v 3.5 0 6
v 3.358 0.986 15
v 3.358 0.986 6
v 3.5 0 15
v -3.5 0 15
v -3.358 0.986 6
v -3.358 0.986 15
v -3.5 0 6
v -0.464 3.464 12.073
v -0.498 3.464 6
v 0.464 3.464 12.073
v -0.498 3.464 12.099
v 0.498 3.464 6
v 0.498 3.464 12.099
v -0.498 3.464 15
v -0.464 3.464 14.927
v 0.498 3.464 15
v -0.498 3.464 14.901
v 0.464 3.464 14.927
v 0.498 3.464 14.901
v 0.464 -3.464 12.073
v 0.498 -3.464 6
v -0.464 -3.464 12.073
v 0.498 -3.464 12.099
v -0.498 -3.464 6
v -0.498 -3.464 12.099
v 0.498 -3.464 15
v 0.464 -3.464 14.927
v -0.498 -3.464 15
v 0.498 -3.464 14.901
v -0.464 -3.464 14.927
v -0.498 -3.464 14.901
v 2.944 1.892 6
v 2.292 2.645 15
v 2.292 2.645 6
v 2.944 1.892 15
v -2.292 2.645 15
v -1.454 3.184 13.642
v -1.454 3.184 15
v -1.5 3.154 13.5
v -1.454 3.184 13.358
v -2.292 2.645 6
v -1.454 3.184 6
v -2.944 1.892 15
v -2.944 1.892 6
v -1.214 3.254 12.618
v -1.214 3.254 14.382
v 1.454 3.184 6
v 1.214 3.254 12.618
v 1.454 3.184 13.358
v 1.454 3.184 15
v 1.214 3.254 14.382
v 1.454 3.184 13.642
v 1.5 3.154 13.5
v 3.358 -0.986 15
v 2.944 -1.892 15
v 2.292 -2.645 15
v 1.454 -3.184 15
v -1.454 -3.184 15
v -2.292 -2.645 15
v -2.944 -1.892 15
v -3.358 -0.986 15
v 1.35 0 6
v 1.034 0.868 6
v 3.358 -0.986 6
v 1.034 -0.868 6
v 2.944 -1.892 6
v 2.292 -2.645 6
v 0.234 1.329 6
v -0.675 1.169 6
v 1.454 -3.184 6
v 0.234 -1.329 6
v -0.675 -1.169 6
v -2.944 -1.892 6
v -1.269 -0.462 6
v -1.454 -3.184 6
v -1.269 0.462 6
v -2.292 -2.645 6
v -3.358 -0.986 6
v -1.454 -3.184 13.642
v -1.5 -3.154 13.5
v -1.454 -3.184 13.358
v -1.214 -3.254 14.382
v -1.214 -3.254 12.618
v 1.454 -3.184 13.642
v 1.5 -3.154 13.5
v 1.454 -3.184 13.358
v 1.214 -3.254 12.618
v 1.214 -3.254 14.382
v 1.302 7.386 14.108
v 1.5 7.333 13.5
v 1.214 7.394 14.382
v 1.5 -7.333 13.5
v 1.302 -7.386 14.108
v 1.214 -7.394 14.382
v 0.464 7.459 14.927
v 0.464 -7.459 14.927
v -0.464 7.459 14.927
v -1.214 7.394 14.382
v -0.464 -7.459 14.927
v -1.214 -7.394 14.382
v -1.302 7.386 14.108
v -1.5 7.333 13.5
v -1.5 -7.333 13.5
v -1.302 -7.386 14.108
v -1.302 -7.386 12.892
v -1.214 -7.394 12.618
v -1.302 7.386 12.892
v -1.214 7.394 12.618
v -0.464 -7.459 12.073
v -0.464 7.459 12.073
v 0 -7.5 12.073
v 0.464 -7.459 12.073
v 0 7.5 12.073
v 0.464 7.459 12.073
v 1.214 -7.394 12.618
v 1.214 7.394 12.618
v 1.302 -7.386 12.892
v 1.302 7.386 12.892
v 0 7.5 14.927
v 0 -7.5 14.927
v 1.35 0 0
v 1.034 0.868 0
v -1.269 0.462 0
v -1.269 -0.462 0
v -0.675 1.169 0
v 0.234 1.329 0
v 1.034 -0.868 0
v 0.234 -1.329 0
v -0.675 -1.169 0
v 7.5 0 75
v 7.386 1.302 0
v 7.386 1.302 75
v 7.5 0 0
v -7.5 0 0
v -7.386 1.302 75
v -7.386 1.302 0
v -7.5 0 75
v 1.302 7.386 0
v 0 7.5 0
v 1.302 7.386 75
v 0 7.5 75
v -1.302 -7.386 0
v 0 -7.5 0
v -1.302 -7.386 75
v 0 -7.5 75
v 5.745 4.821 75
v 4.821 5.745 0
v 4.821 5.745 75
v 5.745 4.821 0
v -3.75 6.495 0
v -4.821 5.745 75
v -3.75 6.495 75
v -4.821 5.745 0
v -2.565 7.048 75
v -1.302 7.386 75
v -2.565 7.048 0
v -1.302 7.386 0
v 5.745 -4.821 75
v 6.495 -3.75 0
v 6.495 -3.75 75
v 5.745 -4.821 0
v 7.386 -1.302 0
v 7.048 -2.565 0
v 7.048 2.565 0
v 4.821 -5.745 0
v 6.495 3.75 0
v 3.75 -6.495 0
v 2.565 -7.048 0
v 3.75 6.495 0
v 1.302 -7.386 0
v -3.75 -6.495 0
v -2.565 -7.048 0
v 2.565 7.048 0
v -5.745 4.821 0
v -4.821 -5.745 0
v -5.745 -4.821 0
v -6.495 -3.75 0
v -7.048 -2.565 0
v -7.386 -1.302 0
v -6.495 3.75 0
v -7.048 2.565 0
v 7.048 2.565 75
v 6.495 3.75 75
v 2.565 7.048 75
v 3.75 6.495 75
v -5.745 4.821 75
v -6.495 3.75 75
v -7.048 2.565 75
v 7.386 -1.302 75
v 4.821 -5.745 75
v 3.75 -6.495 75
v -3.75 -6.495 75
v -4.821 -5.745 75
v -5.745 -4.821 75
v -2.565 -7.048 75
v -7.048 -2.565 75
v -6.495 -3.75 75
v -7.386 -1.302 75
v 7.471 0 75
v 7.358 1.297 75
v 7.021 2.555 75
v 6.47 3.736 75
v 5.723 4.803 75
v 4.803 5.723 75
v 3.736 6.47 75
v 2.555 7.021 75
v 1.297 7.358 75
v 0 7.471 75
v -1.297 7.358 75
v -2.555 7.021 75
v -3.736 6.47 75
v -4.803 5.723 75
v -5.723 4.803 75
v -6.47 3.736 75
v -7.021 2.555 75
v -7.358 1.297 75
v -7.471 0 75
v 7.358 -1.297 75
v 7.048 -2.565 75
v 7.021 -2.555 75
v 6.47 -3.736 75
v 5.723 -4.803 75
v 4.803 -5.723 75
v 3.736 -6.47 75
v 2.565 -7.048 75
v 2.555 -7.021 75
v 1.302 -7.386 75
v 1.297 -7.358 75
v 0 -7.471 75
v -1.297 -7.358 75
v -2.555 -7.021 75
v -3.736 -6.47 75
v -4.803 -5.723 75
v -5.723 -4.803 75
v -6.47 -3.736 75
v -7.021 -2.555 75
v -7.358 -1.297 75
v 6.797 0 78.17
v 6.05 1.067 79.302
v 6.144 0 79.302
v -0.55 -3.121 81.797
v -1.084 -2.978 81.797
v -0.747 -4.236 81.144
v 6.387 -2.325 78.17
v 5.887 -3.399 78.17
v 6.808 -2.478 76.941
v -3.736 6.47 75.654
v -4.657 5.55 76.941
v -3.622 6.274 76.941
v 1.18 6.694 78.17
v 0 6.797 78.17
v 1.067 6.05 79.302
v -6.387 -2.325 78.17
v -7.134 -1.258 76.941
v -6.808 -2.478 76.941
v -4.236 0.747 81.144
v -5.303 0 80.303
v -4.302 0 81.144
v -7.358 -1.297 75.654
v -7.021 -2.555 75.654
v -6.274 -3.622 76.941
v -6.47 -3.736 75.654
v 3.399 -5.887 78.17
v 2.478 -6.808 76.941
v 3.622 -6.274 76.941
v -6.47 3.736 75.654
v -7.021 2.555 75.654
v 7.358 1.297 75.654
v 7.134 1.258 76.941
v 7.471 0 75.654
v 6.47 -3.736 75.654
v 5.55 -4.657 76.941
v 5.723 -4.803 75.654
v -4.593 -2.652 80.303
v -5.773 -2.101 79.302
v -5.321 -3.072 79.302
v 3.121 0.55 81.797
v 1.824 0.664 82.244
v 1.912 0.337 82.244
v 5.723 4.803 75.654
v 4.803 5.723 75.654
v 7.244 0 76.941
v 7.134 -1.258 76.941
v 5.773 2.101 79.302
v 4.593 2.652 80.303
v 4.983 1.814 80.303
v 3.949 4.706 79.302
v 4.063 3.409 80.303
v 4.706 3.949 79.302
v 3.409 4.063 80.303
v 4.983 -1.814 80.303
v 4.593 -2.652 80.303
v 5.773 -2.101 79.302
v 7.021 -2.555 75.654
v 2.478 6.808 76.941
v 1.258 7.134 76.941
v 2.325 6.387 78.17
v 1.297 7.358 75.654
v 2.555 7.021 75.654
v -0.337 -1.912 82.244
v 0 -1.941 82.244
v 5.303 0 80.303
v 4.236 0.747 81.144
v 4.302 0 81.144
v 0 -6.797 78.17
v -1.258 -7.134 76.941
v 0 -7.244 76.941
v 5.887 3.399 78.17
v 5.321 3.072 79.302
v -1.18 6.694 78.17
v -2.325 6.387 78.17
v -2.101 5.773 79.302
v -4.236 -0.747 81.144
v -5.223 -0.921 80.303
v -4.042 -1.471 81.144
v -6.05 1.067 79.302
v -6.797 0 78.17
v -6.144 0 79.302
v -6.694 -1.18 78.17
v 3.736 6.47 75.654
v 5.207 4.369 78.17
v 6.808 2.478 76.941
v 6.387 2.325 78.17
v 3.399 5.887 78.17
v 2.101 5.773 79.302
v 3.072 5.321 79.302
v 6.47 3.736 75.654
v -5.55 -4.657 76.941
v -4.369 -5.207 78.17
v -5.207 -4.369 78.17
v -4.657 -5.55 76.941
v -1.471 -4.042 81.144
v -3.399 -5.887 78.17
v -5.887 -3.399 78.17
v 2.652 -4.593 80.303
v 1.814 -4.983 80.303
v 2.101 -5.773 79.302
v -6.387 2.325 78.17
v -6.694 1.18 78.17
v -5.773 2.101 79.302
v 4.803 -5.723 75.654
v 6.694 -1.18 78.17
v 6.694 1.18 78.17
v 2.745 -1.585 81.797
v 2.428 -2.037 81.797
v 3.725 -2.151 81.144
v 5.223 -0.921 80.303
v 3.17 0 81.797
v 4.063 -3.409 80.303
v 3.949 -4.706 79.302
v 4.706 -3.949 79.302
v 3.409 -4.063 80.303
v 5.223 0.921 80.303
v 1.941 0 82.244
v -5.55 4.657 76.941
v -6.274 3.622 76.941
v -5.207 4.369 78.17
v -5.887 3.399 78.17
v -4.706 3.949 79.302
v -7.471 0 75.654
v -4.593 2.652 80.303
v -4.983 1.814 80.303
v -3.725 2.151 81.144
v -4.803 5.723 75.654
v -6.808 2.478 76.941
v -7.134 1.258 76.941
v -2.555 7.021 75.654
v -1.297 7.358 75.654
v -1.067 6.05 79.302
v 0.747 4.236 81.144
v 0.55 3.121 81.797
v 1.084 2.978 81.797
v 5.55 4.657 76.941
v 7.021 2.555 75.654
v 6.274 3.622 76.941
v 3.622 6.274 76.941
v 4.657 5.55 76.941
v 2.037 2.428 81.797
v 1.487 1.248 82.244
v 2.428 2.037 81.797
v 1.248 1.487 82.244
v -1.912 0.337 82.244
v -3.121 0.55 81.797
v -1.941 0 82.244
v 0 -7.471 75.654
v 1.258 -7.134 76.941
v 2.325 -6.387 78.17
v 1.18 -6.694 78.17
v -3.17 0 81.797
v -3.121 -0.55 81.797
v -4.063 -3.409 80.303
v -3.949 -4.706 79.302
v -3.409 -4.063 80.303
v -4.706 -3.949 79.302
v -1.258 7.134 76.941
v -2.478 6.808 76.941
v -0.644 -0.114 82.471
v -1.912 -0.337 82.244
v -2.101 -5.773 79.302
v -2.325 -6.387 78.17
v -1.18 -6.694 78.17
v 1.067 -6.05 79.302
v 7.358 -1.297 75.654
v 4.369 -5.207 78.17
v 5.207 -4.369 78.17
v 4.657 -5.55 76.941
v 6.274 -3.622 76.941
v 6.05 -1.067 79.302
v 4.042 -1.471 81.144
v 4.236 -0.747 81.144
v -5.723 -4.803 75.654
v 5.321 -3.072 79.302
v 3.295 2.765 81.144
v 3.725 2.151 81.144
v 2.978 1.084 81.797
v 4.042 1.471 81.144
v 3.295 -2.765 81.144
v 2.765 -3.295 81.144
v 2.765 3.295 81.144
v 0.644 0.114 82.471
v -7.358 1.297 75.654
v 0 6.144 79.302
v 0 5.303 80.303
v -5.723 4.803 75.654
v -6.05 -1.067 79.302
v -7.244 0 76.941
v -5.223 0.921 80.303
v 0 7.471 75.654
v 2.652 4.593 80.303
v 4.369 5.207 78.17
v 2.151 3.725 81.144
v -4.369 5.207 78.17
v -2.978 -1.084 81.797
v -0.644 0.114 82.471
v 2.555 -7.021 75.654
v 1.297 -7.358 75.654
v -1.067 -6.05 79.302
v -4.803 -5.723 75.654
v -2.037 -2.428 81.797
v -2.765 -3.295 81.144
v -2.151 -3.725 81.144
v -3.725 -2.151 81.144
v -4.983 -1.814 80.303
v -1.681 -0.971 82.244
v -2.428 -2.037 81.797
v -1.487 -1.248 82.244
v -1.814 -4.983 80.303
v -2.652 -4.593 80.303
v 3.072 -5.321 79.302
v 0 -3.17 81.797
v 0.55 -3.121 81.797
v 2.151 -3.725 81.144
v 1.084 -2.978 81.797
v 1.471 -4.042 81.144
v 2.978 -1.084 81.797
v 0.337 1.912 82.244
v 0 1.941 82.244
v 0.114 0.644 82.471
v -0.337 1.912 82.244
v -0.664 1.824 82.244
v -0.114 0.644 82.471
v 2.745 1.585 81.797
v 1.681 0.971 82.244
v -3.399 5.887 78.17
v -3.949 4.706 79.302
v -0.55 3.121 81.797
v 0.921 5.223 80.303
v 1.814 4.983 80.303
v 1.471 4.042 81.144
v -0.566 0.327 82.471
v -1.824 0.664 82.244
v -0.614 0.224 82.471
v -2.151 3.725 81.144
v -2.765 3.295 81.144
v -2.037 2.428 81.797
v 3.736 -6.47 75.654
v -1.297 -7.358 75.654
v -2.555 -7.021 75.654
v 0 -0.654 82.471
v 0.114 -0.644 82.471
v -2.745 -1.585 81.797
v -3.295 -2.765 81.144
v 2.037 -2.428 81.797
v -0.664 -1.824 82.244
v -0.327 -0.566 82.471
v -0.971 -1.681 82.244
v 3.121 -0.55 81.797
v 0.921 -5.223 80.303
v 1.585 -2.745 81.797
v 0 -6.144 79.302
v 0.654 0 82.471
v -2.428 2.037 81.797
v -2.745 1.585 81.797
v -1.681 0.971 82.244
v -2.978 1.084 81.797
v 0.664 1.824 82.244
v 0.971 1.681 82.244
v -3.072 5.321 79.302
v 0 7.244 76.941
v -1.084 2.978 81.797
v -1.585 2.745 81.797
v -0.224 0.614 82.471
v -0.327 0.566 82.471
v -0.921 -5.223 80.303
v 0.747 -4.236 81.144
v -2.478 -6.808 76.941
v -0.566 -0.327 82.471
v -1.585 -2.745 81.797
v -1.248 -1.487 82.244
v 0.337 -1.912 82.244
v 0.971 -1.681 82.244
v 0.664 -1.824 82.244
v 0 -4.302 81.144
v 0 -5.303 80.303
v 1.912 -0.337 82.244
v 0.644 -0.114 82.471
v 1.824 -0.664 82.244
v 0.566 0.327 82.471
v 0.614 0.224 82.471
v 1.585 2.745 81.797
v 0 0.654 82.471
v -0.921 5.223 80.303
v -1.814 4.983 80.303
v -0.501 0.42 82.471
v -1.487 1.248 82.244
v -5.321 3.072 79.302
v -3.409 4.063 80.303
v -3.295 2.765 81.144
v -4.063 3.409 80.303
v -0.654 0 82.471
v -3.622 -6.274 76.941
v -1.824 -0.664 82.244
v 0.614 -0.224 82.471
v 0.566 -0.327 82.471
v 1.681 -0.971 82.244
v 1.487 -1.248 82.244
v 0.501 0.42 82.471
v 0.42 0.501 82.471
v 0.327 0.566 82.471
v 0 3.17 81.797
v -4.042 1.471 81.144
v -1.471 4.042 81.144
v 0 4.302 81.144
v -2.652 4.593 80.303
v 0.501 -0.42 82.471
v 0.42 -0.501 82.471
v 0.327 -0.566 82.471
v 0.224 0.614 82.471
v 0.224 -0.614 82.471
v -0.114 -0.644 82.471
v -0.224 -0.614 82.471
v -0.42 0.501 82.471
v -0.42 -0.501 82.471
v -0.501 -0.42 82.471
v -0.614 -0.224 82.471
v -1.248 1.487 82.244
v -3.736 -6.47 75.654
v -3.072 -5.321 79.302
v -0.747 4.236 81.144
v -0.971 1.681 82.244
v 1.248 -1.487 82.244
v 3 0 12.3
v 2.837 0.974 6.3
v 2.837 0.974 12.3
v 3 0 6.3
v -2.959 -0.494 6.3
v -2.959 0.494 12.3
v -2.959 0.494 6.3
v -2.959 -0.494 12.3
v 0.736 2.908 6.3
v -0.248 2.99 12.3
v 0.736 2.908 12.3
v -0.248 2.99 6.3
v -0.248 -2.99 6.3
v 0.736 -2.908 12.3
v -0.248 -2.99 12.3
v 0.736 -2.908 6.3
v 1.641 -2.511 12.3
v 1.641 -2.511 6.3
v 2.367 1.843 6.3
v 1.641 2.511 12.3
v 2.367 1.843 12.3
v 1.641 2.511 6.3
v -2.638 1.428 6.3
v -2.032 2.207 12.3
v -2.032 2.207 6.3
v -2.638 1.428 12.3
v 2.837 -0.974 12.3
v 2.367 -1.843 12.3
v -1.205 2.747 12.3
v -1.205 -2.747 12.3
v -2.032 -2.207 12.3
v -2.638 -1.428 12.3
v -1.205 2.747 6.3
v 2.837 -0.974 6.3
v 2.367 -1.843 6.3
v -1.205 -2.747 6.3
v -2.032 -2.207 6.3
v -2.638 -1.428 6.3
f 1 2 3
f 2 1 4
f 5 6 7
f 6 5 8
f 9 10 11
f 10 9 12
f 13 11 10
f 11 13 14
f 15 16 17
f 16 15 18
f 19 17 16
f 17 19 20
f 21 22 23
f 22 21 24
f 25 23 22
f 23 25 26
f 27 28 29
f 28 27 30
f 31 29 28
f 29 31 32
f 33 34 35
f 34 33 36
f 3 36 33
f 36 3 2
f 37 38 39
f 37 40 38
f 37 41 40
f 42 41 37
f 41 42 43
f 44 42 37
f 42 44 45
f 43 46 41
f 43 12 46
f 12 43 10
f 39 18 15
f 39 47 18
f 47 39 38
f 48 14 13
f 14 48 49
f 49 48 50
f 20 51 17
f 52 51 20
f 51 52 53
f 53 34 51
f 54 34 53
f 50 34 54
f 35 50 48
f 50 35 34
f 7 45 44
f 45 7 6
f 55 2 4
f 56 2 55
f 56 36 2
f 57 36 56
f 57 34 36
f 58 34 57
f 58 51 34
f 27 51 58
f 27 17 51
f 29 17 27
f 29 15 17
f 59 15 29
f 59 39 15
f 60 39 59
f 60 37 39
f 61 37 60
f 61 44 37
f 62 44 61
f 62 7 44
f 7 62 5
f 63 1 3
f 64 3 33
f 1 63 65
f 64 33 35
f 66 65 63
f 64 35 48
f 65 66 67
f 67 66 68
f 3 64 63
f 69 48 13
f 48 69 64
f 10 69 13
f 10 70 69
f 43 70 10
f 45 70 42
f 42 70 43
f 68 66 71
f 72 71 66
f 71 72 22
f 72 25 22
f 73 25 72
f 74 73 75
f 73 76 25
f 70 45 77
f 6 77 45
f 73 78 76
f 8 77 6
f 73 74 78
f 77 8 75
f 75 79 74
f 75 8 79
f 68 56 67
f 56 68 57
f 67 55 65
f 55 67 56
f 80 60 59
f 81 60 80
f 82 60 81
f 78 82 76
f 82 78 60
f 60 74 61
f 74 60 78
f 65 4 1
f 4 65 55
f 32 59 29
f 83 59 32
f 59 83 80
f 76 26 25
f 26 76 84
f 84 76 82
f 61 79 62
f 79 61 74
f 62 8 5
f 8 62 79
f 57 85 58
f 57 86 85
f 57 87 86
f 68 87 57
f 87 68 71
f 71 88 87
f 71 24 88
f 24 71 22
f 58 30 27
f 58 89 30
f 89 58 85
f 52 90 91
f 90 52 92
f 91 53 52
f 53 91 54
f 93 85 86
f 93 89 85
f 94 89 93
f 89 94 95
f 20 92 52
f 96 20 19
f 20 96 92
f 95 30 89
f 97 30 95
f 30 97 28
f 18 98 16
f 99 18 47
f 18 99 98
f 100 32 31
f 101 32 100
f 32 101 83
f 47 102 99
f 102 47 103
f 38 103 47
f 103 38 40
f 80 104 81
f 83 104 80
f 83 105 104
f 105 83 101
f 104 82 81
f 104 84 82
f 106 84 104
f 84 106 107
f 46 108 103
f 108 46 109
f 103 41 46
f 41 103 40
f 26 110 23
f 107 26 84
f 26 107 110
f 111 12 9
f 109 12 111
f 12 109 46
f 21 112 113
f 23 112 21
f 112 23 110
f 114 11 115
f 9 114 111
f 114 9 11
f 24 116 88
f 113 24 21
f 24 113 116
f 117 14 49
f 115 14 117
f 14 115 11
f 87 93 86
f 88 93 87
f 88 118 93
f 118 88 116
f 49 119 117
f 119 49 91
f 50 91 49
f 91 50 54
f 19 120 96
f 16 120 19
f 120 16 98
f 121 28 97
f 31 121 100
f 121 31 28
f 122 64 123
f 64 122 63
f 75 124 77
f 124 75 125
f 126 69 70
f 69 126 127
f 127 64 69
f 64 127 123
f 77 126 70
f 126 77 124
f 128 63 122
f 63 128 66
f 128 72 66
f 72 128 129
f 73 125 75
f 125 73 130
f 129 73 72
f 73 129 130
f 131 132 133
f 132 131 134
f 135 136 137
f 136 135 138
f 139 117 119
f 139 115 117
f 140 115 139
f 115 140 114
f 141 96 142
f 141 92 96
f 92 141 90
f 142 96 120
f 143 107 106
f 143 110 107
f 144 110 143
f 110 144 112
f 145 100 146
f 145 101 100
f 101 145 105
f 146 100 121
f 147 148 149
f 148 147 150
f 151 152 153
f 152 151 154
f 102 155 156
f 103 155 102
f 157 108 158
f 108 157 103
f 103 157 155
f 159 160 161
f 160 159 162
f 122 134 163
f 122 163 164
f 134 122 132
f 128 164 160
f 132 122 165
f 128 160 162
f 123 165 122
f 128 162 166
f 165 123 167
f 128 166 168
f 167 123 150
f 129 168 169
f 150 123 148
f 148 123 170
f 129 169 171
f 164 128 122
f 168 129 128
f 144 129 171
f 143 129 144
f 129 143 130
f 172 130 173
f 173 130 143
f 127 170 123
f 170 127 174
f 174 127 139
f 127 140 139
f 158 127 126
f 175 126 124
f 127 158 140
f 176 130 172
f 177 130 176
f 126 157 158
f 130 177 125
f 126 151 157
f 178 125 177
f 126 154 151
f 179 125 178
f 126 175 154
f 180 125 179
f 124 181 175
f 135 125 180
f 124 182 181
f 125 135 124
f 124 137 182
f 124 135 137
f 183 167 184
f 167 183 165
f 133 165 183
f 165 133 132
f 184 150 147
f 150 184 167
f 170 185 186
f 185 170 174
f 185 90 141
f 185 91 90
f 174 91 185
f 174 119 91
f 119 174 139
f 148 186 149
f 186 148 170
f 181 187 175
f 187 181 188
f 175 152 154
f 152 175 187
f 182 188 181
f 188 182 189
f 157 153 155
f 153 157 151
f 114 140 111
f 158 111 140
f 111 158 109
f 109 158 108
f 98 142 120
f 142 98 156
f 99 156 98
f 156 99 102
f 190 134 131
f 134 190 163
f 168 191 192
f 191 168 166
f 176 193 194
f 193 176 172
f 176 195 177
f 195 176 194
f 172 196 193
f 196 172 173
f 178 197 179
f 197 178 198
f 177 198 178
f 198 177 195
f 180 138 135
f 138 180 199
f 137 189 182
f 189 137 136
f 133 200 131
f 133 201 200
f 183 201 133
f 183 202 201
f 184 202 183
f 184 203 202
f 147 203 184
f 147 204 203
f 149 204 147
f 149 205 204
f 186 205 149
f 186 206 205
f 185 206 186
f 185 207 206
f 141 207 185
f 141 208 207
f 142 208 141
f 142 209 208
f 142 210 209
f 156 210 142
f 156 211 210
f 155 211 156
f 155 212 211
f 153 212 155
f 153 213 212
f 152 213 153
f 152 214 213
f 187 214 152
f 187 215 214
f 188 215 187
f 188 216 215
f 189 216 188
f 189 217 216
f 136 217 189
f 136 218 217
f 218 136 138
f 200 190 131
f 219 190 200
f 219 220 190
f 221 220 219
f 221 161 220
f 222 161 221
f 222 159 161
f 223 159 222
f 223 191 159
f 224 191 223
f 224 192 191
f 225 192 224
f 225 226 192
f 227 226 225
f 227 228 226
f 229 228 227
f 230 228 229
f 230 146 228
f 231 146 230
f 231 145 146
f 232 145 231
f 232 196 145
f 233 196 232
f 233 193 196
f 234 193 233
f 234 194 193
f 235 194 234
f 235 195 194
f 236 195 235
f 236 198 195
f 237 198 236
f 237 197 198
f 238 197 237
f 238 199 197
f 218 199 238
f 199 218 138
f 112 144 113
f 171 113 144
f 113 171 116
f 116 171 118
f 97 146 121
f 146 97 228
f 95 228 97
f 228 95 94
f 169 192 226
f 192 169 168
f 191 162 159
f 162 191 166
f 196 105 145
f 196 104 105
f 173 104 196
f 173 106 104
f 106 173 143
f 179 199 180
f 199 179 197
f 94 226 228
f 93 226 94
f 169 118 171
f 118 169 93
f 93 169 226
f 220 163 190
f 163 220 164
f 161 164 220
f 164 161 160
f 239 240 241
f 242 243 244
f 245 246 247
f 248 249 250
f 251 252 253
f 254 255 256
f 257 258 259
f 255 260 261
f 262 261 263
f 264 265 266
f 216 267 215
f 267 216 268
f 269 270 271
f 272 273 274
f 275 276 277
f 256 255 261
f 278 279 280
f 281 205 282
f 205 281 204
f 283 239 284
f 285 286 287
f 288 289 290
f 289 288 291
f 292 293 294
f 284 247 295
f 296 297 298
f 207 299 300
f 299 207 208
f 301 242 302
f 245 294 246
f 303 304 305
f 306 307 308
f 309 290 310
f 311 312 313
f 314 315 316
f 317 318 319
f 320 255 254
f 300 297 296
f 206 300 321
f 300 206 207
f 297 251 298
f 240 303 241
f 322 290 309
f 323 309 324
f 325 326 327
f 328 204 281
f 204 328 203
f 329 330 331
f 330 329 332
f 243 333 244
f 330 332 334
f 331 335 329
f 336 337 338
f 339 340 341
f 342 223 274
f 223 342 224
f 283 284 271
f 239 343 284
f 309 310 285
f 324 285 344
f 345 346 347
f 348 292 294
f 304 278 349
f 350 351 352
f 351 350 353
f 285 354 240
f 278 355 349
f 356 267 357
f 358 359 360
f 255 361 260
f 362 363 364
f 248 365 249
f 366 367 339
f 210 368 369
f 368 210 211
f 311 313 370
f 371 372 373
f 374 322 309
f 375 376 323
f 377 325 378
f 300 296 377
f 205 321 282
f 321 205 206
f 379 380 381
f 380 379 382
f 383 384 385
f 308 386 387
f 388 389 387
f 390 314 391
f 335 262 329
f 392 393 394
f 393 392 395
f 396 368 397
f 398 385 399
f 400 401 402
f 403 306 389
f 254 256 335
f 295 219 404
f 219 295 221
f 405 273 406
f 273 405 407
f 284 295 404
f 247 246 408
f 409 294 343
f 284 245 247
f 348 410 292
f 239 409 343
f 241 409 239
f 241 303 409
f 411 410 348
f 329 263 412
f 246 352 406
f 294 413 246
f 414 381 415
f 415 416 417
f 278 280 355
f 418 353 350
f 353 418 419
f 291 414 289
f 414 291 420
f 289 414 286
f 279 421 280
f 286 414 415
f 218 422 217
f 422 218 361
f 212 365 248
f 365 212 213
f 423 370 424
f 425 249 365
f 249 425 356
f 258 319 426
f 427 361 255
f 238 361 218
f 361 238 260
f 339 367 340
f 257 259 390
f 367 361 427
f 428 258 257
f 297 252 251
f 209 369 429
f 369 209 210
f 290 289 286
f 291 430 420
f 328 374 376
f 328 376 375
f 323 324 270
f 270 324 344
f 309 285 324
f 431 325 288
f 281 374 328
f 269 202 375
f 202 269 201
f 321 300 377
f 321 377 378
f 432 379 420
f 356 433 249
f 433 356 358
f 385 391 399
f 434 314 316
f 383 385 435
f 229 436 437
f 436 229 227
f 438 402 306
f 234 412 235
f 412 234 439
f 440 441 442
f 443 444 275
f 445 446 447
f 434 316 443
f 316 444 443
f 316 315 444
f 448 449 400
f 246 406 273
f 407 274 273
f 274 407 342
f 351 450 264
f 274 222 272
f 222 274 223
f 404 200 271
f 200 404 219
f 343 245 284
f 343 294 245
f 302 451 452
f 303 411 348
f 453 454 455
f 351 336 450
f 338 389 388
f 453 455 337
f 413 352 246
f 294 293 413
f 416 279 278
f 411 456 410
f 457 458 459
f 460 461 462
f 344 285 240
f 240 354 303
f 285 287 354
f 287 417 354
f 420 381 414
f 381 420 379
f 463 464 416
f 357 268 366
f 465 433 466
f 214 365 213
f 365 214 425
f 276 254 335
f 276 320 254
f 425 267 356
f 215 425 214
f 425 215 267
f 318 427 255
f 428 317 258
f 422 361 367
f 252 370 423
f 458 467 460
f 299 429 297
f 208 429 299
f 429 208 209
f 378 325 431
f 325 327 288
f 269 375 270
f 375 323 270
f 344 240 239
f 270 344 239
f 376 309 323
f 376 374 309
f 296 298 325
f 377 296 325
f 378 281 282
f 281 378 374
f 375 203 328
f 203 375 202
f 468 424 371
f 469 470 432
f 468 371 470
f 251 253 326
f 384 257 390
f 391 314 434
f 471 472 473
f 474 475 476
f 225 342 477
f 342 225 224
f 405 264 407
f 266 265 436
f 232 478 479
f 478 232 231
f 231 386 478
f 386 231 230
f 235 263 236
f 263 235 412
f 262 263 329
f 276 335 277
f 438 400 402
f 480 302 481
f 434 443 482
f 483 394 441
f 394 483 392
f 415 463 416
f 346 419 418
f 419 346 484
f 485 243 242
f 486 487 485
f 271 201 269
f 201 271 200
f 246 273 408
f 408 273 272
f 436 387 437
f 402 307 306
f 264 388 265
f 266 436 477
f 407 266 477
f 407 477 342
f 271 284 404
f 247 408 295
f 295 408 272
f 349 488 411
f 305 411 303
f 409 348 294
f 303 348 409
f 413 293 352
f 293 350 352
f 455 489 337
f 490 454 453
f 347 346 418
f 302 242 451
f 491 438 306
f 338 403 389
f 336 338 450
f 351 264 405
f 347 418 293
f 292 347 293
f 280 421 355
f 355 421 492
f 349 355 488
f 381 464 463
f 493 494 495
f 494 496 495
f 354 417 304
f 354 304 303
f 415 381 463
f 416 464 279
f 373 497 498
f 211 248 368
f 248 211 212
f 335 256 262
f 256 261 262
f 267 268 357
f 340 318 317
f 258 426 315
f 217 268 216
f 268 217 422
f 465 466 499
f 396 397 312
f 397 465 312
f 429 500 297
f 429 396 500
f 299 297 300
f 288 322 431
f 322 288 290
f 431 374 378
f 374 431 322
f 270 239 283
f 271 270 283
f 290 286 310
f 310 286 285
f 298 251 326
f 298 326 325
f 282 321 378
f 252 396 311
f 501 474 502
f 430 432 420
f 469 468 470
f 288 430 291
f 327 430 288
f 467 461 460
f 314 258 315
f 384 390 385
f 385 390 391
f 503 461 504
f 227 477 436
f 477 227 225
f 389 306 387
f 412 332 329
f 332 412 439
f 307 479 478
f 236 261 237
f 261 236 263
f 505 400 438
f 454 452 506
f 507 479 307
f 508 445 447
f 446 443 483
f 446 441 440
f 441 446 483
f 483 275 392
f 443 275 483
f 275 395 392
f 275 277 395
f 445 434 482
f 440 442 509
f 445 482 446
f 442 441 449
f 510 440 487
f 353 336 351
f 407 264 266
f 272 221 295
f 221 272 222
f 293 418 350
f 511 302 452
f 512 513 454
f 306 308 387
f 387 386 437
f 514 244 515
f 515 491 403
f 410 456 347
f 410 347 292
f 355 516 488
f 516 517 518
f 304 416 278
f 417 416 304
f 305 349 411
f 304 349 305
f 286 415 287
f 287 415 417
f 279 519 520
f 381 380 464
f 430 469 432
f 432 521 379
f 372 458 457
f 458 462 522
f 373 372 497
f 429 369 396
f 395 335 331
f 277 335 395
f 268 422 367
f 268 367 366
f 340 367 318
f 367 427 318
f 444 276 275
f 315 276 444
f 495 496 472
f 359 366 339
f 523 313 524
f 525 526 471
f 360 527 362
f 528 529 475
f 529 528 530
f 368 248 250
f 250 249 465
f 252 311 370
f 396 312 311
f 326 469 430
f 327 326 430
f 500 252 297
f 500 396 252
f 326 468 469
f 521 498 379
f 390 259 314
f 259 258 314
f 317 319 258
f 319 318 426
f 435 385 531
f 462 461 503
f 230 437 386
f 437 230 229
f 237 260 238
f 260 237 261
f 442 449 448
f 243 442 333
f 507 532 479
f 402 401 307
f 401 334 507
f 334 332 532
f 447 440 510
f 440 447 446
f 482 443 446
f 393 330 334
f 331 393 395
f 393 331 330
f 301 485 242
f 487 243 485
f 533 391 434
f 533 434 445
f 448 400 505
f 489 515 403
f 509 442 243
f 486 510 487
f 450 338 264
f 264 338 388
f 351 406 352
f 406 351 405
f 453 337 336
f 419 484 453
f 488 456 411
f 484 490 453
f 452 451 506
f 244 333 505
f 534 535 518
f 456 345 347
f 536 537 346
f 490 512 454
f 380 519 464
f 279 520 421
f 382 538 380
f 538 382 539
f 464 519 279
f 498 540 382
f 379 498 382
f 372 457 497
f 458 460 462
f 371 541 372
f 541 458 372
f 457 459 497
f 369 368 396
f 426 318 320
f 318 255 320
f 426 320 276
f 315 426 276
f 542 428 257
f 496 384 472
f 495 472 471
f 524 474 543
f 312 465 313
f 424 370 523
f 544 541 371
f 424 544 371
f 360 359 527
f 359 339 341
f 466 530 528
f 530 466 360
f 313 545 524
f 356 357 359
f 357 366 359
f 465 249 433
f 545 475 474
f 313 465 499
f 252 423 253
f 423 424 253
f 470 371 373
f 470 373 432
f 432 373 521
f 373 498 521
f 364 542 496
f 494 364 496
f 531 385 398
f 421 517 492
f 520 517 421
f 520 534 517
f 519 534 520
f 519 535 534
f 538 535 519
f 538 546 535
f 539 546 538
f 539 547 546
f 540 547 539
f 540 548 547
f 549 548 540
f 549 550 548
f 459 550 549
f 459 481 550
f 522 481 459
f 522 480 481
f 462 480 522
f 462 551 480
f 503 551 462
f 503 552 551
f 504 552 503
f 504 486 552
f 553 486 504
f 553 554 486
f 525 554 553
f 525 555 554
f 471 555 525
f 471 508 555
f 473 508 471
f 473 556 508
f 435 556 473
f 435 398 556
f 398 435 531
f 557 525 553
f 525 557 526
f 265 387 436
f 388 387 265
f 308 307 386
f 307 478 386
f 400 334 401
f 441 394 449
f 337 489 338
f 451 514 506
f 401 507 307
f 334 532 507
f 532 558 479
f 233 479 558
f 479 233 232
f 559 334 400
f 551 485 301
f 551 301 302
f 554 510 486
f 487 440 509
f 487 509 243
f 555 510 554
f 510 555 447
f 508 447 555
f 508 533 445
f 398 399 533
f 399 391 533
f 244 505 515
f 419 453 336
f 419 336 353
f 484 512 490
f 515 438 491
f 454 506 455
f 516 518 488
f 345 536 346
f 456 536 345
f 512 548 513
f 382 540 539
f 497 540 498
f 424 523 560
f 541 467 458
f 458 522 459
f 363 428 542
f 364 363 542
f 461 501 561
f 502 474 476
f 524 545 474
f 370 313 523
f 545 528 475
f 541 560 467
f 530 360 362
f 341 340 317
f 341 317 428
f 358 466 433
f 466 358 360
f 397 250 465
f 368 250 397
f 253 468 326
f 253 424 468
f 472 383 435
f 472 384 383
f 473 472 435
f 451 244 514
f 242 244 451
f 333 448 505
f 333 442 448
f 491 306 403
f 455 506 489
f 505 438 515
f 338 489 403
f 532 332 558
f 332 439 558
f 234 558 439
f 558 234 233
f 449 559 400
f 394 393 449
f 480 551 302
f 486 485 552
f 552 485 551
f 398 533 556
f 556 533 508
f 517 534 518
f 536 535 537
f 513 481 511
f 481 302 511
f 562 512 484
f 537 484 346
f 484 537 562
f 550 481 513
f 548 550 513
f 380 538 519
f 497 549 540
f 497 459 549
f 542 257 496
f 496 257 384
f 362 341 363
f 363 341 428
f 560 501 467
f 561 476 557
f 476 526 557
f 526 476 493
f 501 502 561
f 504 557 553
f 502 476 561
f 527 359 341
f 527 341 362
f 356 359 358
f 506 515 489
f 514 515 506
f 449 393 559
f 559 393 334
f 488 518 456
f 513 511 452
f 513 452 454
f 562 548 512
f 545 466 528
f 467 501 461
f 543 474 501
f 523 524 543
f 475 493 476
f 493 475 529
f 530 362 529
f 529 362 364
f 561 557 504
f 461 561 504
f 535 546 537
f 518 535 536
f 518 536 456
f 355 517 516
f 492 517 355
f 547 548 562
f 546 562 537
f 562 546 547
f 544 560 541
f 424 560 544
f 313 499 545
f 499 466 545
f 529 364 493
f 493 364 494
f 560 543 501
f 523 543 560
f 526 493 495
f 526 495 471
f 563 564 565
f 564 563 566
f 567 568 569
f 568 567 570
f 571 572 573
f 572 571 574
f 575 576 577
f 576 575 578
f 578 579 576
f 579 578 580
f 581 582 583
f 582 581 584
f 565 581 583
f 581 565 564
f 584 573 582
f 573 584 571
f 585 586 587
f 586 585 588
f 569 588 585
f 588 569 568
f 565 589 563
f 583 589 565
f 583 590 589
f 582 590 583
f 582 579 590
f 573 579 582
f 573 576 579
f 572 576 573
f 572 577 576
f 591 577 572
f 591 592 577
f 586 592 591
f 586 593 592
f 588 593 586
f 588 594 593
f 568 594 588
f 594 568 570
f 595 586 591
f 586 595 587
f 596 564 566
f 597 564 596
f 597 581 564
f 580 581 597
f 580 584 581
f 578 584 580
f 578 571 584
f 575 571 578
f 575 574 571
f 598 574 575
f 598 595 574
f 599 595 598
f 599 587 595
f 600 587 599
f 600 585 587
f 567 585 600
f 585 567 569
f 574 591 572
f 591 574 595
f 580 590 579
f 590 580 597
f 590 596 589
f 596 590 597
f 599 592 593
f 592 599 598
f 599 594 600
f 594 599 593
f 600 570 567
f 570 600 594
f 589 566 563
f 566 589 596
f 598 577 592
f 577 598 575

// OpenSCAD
// wire feeder
handle_d = 15;
handle_h = 75;
slot_w = 6;
gap = 0.5;
screw_d=2.7;
wire_d=3;
layer_height=0.3;
preview_fa = 12;
preview_fs = 5;
render_fa = 10;
render_fs = 1;
$fa = $preview ? preview_fa : render_fa;
$fs = $preview ? preview_fs : render_fs;



module subtract() {
  // slot
  translate([0,0,wire_d*2]) cylinder(h=wire_d*3, d=slot_w+gap*2);
  // wire hole
  translate([0,0,screw_d*5]) rotate([90,0,0]) cylinder(h=handle_d*2, d=wire_d, center=true);
  // screw hole
  translate([0,0,-0.01]) cylinder(h=wire_d*3, d=screw_d);
  // cutaway view
  //cube([handle_d, handle_d, handle_h*2]);
}

difference() {
  // main body
  union() {
    cylinder(h=handle_h, d=handle_d);
    translate([0,0,handle_h]) sphere(d=handle_d);
  }
  subtract();
}
// floating wedge
color("green") translate([0,0,wire_d*2+layer_height]) cylinder(h=wire_d*2, d=slot_w);
